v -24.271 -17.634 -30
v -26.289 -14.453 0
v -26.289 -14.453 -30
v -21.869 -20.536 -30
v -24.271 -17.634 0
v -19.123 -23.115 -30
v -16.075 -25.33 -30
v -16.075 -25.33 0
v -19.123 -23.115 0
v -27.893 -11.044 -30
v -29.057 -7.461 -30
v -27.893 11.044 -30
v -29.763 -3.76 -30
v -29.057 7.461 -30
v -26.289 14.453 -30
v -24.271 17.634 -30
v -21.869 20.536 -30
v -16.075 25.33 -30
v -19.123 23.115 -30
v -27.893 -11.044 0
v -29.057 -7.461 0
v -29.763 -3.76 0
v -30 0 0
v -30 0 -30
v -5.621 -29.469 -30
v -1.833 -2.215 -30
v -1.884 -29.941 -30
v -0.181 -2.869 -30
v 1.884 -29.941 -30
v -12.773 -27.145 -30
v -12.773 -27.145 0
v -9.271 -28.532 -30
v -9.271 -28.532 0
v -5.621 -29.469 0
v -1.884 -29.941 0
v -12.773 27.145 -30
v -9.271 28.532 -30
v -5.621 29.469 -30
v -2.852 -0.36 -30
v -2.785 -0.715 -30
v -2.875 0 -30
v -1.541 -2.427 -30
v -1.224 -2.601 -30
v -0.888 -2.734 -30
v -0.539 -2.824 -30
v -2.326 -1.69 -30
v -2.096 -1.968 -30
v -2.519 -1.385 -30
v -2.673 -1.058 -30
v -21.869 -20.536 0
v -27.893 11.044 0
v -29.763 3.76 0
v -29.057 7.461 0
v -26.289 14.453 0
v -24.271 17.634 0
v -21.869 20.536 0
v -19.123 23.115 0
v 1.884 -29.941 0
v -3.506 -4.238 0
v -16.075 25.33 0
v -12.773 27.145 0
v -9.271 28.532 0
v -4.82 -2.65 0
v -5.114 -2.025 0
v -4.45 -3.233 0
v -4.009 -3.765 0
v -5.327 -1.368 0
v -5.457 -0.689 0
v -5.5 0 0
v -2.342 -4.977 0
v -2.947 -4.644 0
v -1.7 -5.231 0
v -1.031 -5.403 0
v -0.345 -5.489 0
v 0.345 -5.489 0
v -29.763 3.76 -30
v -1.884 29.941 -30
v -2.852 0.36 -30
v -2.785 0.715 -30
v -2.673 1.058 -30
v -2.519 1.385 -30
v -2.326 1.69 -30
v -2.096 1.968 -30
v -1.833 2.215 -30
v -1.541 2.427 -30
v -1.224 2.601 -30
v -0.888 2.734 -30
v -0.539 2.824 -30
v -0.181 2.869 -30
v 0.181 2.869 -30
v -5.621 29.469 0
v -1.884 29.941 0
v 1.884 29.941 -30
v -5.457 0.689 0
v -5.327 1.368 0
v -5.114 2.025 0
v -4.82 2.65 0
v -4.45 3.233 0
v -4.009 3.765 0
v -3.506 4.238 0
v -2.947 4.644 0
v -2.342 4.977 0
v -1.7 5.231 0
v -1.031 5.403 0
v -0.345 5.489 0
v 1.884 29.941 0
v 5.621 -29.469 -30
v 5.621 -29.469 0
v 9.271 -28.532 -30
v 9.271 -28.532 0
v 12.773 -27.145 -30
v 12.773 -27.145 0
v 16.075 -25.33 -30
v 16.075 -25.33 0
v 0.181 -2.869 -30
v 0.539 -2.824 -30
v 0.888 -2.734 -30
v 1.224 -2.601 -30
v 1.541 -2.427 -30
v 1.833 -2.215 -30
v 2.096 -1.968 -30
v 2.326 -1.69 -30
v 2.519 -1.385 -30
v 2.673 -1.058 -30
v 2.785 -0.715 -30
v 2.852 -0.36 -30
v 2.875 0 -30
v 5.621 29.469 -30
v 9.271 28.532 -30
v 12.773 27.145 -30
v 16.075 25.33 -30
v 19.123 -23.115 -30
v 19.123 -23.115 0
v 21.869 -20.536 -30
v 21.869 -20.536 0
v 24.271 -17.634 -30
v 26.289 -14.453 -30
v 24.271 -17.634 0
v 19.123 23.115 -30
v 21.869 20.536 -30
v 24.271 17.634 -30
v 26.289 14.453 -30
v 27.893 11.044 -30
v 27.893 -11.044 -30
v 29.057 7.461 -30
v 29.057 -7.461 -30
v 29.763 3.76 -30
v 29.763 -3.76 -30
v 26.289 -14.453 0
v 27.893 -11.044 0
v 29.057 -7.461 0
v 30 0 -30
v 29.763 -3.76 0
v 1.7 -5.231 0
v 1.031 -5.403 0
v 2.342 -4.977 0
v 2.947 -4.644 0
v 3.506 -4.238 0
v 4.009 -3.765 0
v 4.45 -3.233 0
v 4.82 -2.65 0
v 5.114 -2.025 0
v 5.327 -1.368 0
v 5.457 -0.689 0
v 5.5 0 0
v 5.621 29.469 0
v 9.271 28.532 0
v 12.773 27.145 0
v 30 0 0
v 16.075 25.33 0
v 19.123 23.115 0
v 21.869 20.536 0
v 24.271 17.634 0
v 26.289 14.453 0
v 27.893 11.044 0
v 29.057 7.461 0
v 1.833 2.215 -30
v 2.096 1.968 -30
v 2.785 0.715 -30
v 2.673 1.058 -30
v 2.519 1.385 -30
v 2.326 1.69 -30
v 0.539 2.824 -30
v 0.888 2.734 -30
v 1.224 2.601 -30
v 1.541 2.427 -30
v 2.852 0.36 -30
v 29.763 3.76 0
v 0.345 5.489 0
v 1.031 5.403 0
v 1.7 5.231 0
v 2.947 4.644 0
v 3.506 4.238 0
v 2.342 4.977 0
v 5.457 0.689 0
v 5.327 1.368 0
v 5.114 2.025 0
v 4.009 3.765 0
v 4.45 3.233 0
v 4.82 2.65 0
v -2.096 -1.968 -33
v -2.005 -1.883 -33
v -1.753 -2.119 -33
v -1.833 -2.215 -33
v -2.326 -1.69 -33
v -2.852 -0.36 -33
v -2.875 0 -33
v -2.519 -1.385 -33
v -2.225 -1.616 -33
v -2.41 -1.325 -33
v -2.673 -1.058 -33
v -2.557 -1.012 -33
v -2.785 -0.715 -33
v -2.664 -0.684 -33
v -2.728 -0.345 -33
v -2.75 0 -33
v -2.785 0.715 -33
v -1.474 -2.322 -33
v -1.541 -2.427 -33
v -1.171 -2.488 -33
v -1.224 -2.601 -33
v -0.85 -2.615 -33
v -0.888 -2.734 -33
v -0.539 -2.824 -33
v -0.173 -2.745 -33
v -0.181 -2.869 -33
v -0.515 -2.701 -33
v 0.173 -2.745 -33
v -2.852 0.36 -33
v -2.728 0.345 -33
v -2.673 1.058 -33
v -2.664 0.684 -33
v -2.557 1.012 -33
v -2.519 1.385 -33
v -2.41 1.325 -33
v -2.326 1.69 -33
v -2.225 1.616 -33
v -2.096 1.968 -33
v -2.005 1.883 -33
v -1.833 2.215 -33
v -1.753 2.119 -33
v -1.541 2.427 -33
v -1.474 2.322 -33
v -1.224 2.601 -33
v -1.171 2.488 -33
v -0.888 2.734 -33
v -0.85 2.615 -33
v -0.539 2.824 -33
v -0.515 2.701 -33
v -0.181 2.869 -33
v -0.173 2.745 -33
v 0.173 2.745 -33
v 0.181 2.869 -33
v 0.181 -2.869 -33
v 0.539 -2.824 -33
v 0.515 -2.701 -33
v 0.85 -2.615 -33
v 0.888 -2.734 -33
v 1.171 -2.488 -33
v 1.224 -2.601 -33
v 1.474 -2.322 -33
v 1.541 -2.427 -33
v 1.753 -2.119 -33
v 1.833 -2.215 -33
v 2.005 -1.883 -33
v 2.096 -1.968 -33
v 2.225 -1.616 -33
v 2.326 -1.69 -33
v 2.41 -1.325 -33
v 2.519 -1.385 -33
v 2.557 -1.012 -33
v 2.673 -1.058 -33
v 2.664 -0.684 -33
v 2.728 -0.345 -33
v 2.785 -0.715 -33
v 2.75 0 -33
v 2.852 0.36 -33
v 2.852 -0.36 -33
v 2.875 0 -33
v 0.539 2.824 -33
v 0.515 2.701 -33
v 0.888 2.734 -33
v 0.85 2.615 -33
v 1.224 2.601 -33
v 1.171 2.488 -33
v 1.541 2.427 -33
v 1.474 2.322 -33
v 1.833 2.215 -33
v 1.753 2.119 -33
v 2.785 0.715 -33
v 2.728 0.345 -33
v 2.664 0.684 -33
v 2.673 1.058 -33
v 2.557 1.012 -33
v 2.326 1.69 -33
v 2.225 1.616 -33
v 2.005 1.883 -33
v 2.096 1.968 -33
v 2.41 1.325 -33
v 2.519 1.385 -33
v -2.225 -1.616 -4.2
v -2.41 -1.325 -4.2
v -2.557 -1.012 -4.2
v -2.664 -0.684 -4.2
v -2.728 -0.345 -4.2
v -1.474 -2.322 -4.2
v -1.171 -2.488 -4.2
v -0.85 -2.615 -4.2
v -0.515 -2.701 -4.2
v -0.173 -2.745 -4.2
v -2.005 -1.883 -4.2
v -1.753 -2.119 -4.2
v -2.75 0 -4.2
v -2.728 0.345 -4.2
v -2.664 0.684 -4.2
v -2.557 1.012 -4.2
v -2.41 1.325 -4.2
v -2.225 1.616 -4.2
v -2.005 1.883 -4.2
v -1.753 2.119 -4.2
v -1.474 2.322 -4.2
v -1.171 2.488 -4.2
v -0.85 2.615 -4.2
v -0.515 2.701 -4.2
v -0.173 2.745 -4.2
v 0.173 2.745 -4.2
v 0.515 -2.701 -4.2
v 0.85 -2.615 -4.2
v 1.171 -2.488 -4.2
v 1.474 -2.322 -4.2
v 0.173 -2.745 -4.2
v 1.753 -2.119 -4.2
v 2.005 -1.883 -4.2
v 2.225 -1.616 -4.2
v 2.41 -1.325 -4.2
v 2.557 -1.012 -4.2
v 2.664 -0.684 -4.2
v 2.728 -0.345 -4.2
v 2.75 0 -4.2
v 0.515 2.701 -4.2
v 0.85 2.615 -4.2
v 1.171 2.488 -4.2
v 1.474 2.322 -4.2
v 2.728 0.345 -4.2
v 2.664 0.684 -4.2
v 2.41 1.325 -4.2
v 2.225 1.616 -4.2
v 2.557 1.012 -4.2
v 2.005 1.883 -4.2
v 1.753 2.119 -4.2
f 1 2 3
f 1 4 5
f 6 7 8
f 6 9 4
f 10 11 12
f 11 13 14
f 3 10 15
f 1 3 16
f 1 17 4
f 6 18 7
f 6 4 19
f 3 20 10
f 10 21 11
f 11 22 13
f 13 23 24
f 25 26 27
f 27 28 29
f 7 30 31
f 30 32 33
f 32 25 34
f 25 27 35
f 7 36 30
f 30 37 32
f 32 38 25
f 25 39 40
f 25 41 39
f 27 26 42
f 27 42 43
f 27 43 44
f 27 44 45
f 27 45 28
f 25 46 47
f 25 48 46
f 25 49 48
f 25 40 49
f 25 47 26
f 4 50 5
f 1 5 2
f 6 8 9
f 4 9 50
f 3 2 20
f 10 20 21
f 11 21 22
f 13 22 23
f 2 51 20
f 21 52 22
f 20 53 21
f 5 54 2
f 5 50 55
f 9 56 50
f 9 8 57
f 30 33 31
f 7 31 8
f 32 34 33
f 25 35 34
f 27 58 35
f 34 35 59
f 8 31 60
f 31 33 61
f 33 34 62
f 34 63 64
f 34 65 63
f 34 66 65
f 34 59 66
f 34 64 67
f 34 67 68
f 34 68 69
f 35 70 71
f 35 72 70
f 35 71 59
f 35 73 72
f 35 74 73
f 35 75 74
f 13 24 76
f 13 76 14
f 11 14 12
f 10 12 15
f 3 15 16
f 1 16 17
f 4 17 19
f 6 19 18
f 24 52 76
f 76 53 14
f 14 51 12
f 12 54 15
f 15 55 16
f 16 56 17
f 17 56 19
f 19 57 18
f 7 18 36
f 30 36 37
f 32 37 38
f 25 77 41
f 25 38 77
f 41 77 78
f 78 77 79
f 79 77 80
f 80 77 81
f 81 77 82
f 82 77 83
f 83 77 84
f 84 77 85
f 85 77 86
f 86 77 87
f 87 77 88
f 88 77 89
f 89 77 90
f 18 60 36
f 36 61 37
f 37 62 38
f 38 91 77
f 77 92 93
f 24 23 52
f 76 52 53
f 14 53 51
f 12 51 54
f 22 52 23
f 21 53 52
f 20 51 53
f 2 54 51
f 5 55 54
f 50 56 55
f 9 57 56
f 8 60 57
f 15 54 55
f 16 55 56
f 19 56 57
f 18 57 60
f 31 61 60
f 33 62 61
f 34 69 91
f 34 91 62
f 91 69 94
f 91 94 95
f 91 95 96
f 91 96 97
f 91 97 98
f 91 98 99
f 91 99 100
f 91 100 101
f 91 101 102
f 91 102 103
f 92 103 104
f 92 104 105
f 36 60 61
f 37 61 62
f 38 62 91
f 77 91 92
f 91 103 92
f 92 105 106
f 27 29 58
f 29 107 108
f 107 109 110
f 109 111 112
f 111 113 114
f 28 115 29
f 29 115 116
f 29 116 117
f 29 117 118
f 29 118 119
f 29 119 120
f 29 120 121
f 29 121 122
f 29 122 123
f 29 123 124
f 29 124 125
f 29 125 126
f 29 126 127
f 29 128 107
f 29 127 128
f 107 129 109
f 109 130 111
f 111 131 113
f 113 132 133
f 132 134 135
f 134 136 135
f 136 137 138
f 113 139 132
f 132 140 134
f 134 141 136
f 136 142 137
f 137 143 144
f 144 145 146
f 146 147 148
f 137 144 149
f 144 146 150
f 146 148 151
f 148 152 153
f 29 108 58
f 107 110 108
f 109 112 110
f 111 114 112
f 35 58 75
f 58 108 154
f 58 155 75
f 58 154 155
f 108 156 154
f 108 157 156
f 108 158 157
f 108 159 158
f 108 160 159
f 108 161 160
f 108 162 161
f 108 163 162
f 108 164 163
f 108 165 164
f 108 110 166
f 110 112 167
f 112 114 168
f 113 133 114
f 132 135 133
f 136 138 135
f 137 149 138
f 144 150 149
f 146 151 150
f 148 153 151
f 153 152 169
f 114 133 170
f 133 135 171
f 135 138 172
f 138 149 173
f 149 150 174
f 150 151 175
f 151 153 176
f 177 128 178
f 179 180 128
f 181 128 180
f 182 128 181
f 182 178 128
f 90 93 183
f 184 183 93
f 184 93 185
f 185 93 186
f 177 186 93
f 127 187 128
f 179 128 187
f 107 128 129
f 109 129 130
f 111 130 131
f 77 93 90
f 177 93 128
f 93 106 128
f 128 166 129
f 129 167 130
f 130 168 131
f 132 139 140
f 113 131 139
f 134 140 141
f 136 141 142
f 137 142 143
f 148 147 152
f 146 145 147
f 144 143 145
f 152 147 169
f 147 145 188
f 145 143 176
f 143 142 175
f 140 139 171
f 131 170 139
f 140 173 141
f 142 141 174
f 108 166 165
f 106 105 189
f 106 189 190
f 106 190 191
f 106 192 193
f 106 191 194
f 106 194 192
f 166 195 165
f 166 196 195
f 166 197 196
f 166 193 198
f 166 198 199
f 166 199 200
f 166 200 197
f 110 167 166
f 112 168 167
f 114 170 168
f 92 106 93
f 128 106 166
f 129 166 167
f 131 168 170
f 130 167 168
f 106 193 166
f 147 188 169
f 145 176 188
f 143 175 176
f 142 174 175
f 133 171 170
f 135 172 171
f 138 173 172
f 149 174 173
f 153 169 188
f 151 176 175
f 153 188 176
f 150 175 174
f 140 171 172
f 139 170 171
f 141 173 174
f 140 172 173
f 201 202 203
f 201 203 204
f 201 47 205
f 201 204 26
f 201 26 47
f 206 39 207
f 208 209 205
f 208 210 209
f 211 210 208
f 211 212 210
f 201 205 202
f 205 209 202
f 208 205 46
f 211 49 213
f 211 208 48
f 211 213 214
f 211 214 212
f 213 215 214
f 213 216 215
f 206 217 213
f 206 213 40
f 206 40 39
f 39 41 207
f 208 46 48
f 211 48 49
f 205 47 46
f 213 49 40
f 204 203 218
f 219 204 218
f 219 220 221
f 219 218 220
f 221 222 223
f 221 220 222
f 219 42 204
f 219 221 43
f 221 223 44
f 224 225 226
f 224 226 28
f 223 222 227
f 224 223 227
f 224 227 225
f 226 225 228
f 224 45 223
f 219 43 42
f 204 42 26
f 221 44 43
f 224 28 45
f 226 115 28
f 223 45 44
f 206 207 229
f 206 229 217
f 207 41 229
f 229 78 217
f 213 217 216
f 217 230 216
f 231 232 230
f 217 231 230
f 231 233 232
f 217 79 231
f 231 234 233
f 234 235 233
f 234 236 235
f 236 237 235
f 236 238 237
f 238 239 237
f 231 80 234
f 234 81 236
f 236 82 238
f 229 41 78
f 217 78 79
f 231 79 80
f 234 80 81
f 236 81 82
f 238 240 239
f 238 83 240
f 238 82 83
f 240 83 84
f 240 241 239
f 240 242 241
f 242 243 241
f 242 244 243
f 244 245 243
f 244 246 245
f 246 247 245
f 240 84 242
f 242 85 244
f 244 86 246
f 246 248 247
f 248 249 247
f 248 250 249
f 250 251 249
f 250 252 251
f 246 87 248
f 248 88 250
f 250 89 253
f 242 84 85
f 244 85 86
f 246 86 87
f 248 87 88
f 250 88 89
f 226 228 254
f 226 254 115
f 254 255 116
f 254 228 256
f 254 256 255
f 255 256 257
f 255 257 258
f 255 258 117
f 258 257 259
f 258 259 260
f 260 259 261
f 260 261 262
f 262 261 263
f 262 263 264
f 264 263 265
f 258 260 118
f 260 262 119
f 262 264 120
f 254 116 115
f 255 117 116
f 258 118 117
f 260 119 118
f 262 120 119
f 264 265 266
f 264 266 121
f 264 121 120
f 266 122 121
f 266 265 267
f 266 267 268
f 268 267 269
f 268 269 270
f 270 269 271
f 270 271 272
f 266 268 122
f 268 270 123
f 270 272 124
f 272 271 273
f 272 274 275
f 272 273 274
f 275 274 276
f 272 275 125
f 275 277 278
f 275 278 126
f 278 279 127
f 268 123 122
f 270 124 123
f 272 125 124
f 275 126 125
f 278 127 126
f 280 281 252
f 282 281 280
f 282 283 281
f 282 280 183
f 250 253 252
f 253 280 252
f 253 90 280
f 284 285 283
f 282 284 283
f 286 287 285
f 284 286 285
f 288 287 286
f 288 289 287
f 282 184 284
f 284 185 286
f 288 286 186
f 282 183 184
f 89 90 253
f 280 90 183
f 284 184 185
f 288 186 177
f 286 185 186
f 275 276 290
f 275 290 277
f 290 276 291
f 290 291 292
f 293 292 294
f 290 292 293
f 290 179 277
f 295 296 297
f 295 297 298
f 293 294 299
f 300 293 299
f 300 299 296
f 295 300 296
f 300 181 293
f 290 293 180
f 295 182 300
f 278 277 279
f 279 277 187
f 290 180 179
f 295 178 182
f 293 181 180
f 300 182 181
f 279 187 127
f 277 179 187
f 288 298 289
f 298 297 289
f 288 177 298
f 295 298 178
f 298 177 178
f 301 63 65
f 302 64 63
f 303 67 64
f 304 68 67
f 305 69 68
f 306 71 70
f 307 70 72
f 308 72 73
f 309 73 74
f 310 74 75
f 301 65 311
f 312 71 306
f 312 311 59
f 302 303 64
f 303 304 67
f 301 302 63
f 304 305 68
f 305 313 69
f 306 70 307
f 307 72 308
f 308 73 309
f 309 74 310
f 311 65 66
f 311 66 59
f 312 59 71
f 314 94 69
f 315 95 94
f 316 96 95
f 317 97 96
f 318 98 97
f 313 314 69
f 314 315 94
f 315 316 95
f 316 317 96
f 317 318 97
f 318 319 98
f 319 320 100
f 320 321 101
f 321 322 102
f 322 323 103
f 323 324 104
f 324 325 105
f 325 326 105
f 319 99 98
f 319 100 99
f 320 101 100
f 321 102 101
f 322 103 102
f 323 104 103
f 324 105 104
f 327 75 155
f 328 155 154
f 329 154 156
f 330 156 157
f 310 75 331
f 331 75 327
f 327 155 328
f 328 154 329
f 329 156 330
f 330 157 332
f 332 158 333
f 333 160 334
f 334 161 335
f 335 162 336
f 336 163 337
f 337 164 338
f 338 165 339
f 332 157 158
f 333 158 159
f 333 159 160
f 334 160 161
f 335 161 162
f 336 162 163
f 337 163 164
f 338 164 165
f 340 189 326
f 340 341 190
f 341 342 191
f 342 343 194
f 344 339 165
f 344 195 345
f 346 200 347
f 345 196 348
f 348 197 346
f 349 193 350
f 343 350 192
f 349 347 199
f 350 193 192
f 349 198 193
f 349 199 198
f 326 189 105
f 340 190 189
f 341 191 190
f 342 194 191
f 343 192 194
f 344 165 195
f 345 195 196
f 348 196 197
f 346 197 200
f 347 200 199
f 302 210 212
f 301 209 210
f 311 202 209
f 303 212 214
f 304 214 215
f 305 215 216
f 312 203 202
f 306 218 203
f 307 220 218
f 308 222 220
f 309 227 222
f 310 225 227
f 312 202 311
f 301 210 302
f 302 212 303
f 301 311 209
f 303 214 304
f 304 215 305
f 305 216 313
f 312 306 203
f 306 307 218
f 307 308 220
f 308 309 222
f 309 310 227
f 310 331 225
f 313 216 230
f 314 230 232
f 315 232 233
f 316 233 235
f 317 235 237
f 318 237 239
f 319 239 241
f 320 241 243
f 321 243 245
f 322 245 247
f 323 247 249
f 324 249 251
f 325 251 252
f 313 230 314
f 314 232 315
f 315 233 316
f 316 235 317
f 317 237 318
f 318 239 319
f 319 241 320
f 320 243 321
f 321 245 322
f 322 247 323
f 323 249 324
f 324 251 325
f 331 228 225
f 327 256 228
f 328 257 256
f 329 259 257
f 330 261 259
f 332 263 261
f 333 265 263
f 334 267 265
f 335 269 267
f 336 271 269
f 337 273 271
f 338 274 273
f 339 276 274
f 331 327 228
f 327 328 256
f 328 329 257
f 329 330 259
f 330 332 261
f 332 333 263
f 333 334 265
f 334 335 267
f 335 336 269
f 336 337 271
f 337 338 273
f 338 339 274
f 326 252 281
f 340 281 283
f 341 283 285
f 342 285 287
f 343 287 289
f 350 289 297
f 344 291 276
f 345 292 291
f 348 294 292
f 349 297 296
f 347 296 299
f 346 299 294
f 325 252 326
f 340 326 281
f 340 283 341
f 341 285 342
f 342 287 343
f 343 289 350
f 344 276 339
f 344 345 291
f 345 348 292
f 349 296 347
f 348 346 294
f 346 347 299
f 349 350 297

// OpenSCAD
$fn = 50;


difference() {
	union() {
		translate(v = [0, 0, -30.0000000000]) {
			cylinder(h = 30, r = 30.0000000000);
		}
		#translate(v = [0, 0, -33.0000000000]) {
			cylinder(h = 33, r = 2.8750000000);
		}
	}
	union() {
		translate(v = [0, 0, 0]) {
			rotate(a = [0, 0, 0]) {
				difference() {
					union() {
						translate(v = [0, 0, -33.0000000000]) {
							cylinder(h = 33, r = 2.2500000000);
						}
						translate(v = [0, 0, -4.2000000000]) {
							cylinder(h = 4.2000000000, r1 = 2.7500000000, r2 = 5.5000000000);
						}
						translate(v = [0, 0, -33.0000000000]) {
							cylinder(h = 33, r = 2.7500000000);
						}
						translate(v = [0, 0, -33.0000000000]) {
							cylinder(h = 33, r = 2.2500000000);
						}
					}
					union();
				}
			}
		}
	}
}
